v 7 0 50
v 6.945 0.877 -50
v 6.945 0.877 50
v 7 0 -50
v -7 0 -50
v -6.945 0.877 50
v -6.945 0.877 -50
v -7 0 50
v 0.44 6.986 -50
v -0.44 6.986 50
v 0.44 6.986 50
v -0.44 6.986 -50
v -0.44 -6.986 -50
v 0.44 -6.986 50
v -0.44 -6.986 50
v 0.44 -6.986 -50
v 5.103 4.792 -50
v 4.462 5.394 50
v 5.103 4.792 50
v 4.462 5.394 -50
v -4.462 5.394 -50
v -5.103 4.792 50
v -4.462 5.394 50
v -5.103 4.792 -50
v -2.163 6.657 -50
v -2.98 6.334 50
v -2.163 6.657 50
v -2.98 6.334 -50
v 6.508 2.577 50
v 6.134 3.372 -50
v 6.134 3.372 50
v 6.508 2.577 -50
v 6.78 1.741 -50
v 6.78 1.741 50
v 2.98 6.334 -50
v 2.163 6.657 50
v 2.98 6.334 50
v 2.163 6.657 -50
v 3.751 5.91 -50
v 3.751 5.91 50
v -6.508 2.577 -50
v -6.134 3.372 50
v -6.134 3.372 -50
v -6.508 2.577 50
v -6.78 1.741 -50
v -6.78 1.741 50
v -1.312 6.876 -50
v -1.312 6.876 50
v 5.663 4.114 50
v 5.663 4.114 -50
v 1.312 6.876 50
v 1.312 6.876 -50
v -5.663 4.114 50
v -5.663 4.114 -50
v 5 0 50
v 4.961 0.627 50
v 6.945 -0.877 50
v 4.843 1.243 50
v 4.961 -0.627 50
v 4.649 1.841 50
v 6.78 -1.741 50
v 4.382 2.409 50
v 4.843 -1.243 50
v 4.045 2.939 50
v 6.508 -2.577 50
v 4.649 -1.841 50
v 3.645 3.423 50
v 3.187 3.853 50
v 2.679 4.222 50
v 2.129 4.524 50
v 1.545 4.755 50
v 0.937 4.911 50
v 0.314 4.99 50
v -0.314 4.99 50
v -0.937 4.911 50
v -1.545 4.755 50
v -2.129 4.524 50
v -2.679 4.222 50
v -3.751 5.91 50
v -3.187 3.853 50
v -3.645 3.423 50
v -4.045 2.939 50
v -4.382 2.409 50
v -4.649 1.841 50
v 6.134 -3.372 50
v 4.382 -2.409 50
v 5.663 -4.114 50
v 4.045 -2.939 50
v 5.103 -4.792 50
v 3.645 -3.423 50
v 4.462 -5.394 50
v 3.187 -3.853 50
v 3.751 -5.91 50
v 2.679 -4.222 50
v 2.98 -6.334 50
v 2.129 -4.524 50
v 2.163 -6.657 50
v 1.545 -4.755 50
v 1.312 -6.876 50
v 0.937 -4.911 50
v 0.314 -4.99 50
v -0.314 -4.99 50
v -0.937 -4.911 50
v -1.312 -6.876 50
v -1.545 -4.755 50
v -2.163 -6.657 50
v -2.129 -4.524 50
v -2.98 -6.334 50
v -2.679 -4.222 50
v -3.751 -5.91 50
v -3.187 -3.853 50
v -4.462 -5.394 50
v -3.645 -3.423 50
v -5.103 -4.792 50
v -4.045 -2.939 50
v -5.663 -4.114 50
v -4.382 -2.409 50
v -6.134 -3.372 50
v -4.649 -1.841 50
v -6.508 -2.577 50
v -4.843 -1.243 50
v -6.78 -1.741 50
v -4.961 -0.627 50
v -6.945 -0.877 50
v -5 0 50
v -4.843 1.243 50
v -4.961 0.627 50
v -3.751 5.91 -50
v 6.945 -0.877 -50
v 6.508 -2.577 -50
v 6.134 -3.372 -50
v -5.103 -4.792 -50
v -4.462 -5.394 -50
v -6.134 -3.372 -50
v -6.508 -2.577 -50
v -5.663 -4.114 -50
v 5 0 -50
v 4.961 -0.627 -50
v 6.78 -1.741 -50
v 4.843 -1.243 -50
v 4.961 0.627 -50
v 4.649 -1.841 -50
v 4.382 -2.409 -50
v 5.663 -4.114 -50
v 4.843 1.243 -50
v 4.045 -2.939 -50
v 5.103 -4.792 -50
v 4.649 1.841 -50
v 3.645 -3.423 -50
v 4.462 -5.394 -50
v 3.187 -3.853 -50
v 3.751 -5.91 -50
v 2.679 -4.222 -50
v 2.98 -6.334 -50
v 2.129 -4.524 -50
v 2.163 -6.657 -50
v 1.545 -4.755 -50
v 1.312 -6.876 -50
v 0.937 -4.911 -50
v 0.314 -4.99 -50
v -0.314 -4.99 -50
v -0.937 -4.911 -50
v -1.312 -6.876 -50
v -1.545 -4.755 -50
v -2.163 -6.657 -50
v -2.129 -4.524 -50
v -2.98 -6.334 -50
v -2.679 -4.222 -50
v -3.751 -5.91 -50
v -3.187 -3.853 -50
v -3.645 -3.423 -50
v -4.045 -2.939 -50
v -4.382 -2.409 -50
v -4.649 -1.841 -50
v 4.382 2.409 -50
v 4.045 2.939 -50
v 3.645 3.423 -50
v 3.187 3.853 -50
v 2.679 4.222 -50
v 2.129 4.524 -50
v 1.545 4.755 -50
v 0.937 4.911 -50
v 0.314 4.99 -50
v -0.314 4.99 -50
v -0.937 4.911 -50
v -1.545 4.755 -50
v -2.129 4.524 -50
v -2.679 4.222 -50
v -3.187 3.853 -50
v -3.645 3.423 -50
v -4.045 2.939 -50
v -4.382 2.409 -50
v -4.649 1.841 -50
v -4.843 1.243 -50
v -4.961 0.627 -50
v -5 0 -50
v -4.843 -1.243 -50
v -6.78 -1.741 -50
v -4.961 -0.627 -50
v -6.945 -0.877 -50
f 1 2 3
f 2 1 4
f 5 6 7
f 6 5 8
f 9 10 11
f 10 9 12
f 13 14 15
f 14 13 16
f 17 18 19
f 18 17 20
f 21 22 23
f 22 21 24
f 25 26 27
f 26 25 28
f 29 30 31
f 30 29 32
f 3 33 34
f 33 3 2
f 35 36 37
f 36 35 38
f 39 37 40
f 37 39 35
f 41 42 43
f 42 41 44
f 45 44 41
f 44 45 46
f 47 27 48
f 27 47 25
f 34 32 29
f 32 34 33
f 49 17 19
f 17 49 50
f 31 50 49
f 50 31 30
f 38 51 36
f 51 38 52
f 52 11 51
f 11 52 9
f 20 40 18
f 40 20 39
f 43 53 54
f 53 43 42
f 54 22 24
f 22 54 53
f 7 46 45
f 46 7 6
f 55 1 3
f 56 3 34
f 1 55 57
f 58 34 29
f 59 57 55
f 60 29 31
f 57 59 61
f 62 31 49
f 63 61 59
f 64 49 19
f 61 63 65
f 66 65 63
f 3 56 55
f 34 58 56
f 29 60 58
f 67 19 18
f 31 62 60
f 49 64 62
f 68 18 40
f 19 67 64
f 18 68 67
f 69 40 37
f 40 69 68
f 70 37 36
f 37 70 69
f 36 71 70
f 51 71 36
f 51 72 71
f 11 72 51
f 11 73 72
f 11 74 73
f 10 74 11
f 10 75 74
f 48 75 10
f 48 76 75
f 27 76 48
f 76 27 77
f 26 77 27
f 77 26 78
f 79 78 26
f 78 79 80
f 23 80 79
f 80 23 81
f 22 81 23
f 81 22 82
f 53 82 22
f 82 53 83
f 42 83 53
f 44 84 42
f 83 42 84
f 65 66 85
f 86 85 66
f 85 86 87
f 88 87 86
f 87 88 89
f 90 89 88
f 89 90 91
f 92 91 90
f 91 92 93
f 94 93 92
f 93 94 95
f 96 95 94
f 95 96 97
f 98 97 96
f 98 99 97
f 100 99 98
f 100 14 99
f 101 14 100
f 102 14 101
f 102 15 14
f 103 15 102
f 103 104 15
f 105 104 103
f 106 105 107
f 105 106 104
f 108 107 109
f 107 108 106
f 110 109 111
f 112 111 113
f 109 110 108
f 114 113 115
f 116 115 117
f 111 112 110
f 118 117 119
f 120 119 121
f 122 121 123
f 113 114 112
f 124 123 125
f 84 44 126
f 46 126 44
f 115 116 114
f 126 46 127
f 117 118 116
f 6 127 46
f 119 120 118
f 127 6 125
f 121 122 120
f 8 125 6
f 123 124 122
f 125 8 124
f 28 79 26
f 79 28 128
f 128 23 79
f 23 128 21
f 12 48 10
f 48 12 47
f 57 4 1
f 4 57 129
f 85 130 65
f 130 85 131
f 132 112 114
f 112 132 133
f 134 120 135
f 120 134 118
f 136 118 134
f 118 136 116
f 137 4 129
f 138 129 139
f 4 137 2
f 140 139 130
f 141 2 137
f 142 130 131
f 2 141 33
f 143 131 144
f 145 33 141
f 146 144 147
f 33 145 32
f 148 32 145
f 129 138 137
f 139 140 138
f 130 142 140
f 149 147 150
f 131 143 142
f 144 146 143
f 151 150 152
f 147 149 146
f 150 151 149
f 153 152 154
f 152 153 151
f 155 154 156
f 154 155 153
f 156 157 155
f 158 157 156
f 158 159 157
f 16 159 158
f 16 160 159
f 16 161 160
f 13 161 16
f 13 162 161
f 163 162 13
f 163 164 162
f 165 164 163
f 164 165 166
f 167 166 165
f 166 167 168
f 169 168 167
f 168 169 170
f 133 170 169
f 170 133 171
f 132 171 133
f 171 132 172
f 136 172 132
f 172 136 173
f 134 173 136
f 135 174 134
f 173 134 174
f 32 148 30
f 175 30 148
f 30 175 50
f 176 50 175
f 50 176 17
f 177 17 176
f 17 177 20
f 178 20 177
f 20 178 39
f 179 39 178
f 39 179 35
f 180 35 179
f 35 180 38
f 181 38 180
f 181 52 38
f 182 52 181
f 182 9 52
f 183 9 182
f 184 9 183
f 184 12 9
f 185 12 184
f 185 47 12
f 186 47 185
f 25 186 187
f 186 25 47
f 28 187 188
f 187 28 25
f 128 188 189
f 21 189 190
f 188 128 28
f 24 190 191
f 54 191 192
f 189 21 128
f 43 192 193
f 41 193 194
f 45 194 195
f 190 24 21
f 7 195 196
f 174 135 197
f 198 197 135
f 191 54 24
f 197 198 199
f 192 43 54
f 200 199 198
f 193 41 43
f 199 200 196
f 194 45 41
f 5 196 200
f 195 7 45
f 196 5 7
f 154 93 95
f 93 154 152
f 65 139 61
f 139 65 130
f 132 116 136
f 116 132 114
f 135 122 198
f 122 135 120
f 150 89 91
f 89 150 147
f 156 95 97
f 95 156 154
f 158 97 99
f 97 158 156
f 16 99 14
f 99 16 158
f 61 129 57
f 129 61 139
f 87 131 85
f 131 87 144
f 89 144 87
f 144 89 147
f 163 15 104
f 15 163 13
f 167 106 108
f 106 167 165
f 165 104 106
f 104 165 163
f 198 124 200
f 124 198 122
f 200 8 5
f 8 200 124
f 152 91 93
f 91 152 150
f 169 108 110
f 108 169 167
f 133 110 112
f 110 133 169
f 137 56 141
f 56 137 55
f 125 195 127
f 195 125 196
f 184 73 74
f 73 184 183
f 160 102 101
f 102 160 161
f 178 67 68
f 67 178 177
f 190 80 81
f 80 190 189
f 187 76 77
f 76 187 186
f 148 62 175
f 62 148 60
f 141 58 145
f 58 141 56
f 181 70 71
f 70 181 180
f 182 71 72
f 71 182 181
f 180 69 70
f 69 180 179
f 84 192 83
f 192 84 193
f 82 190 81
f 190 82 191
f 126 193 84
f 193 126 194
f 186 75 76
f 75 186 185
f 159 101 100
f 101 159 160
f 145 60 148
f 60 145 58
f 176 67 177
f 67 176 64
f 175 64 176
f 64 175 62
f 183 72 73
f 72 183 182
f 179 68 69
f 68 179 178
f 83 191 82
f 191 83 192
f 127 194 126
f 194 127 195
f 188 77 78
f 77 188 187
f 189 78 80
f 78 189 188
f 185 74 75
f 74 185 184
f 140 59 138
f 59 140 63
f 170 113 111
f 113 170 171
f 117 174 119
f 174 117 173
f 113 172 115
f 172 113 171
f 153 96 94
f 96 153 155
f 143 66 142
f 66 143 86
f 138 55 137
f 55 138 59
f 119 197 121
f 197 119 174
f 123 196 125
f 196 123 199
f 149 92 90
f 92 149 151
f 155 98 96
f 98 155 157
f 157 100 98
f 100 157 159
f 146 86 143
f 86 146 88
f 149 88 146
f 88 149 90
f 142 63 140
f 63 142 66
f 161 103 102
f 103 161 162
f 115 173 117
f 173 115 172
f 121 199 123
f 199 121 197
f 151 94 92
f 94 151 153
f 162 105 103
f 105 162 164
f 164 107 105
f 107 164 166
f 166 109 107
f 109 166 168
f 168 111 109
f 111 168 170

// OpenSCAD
$fn = 50;


difference() {
	union() {
		translate(v = [0, 0, -50.0000000000]) {
			cylinder(h = 100, r = 7.0000000000);
		}
	}
	union() {
		translate(v = [0, 0, -100.0000000000]) {
			cylinder(h = 200, r = 5);
		}
	}
}
